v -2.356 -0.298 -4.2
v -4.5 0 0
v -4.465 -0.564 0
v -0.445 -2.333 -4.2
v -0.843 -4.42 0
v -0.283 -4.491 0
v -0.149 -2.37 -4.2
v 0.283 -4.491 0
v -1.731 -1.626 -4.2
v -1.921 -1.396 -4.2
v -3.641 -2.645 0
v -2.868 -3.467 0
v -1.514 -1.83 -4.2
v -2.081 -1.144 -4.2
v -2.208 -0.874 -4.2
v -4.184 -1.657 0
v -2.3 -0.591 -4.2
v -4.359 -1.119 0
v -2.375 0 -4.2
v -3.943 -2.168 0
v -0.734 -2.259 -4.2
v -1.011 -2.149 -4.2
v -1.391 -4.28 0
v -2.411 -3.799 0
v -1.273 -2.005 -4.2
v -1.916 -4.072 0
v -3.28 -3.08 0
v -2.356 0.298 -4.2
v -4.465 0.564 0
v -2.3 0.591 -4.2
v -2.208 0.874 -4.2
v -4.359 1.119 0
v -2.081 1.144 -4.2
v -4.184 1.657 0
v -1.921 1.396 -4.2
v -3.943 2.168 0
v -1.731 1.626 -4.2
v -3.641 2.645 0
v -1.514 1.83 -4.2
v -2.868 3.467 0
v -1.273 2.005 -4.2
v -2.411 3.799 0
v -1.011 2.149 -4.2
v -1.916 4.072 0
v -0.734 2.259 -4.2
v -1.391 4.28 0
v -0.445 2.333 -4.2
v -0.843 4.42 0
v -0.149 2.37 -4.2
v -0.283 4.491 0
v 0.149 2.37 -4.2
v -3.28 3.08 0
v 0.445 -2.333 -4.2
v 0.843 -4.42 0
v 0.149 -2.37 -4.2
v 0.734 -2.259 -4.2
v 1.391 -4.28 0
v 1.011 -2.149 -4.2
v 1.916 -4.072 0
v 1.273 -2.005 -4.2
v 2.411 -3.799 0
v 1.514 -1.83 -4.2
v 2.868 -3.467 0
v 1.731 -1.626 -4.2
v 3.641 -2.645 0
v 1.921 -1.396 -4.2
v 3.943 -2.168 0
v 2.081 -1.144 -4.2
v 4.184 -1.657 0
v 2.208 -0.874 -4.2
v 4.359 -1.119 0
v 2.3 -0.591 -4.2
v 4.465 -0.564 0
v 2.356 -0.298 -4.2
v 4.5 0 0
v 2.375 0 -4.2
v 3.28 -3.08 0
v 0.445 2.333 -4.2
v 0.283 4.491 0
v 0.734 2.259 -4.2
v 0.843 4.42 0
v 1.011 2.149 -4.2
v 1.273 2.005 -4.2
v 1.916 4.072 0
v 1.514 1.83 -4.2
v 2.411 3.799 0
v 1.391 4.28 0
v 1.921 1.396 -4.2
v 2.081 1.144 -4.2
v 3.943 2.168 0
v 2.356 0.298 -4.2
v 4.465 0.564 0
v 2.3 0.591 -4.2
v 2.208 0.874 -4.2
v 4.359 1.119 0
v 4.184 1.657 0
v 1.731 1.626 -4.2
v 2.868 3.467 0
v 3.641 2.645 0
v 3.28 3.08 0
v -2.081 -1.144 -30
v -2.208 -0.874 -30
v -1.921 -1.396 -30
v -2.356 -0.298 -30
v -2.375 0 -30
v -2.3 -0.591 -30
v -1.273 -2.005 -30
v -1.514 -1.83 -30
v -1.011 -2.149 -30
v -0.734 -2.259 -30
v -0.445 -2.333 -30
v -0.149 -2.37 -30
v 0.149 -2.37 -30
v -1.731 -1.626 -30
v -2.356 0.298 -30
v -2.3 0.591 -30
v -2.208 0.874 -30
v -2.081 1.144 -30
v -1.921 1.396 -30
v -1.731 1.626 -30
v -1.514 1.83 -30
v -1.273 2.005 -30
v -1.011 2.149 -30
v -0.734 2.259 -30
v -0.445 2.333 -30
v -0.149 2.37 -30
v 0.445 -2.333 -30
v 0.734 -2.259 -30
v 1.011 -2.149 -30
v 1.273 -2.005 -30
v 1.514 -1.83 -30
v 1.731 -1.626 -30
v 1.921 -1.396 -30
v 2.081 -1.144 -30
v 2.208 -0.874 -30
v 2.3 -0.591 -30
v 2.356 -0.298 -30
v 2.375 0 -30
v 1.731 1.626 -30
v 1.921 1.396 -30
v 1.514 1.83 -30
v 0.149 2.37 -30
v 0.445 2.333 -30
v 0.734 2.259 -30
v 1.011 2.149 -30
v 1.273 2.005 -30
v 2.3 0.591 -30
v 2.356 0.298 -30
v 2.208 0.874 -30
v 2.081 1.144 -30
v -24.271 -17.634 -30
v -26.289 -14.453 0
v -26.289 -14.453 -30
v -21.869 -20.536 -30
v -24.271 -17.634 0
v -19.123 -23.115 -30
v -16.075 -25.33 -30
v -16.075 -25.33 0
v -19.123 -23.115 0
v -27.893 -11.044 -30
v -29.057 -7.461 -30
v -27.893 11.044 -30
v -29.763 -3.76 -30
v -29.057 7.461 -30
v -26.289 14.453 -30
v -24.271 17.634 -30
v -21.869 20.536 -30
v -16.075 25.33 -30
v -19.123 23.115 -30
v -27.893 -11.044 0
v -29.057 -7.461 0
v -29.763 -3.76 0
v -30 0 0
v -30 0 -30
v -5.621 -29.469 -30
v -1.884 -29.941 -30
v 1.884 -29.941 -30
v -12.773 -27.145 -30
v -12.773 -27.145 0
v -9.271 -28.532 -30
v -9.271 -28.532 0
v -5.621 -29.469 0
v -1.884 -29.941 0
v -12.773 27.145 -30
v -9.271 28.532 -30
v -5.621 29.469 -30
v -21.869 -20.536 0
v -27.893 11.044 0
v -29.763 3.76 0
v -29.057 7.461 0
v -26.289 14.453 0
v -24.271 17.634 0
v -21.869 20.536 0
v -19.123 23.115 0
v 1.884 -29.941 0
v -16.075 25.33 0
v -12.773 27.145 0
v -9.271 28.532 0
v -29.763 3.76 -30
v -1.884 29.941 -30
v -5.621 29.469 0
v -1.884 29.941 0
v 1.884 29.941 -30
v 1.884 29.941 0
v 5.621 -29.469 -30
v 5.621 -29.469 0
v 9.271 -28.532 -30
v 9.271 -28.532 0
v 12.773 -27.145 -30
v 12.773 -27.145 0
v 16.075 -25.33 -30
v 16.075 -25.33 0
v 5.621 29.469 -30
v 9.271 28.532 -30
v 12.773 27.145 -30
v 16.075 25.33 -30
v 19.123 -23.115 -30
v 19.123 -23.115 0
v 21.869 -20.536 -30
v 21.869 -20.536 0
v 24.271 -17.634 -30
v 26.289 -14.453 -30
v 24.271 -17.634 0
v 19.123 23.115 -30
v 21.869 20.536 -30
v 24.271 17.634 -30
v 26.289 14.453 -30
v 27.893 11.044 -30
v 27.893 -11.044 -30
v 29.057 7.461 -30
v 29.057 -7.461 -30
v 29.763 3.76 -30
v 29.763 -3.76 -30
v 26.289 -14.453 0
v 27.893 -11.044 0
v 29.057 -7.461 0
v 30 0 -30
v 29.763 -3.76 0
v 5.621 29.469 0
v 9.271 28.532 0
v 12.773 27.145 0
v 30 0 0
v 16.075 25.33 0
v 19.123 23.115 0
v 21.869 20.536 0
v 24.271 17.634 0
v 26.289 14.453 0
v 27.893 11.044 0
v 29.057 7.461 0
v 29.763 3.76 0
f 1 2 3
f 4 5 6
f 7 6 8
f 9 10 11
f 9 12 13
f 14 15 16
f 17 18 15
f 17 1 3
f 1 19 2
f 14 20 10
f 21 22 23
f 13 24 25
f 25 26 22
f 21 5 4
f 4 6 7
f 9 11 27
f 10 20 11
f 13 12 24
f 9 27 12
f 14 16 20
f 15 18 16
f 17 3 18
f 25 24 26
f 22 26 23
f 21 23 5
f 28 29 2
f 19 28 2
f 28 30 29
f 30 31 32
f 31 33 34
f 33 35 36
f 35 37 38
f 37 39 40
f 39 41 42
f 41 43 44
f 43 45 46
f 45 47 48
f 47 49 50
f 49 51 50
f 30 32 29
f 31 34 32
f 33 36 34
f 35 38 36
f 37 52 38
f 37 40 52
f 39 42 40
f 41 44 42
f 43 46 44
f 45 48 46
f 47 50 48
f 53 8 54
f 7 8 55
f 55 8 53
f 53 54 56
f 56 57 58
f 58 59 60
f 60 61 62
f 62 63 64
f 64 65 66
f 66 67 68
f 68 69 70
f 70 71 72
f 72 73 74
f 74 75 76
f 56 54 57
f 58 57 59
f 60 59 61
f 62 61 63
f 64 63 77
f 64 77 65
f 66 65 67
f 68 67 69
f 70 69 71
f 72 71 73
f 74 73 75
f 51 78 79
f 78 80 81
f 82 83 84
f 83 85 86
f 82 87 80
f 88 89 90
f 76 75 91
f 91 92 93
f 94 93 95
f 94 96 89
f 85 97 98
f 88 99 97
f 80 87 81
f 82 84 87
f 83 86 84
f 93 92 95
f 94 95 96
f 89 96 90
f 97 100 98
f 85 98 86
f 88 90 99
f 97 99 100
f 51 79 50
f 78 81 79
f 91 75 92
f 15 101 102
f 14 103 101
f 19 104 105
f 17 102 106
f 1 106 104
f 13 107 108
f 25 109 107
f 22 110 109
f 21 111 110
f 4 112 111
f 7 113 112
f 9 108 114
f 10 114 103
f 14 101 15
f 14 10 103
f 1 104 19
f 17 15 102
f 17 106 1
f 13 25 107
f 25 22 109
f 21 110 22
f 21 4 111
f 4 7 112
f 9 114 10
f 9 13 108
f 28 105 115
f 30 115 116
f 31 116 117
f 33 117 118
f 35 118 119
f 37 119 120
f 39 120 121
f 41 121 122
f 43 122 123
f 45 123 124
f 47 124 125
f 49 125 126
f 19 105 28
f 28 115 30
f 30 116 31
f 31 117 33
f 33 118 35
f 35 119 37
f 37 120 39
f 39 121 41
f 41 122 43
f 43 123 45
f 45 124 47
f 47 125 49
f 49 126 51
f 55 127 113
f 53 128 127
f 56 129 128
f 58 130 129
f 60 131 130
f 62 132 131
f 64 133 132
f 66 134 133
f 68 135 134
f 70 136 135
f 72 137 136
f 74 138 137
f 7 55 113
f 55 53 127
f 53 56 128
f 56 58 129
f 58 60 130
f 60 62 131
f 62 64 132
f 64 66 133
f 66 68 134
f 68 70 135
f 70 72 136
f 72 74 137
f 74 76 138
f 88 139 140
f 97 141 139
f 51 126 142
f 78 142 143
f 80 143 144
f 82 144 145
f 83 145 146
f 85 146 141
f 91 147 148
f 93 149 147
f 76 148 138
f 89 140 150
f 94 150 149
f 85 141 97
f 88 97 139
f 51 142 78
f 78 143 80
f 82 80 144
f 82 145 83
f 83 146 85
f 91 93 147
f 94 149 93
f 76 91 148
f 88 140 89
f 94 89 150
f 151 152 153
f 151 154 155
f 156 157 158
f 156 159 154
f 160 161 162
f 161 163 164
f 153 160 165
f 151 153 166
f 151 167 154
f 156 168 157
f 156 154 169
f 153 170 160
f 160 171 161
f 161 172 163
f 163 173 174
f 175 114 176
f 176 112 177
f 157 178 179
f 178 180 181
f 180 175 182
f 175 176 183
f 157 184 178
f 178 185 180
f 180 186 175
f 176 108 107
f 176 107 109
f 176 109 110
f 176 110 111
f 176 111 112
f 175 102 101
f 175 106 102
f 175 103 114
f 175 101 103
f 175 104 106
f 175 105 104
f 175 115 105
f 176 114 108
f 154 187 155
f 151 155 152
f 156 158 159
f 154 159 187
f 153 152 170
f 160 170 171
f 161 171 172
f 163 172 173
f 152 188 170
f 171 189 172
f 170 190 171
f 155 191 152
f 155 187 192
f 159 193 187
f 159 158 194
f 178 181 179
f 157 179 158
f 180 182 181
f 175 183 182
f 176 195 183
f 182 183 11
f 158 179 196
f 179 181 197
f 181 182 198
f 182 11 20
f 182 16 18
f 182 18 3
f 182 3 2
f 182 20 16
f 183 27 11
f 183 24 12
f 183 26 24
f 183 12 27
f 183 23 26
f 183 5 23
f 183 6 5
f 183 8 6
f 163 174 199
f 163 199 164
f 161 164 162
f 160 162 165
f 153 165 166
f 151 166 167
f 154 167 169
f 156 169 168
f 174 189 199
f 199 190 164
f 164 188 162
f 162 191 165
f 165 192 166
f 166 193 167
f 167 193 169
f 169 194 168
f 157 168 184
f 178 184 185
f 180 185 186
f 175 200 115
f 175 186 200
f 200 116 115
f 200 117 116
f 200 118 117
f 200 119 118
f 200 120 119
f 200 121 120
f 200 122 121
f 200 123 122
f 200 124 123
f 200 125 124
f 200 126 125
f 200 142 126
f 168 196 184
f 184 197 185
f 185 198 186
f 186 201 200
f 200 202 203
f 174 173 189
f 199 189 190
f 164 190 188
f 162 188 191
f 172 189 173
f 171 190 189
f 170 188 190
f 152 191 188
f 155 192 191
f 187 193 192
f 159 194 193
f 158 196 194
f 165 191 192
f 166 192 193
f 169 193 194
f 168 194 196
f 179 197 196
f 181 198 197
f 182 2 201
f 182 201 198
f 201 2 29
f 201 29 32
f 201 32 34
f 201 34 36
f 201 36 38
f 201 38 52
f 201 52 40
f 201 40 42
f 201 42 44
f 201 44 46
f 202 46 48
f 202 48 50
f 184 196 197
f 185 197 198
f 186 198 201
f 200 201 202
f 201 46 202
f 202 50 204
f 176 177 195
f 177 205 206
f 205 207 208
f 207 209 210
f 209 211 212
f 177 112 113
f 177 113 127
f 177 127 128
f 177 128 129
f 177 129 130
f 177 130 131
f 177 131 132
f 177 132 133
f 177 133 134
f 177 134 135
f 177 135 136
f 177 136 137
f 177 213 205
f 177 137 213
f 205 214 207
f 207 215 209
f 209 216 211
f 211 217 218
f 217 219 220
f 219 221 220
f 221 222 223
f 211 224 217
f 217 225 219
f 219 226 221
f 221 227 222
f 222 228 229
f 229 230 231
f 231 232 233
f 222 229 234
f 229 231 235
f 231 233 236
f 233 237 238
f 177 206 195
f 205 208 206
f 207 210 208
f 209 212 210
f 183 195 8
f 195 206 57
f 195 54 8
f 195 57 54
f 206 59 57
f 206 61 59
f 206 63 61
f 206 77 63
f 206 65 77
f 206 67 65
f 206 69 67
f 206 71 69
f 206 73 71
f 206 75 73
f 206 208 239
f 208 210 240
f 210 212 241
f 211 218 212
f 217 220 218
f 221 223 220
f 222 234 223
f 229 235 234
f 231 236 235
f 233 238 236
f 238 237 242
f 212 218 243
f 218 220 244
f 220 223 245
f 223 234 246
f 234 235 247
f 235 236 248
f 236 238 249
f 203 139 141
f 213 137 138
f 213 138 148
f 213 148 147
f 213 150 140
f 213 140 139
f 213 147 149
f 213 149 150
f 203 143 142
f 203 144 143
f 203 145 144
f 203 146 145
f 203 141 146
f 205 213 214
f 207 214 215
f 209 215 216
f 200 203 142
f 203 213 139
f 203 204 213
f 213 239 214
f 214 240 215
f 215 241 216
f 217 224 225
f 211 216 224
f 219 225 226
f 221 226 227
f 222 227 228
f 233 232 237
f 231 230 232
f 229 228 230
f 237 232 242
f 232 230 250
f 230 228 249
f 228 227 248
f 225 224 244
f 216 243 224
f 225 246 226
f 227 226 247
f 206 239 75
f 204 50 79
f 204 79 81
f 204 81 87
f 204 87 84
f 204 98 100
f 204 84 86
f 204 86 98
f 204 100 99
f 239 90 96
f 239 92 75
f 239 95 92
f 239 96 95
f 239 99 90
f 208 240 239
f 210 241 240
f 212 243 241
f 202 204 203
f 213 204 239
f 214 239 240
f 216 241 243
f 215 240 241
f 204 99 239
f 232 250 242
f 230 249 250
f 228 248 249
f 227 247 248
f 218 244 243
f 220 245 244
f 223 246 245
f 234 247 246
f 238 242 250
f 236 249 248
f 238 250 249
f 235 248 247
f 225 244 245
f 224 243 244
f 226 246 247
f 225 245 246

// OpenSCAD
$fn = 50;


difference() {
	union() {
		translate(v = [0, 0, -30.0000000000]) {
			cylinder(h = 30, r = 30.0000000000);
		}
	}
	union() {
		translate(v = [0, 0, 0]) {
			rotate(a = [0, 0, 0]) {
				difference() {
					union() {
						translate(v = [0, 0, -33.0000000000]) {
							cylinder(h = 33, r = 2.2500000000);
						}
						translate(v = [0, 0, -4.2000000000]) {
							cylinder(h = 4.2000000000, r1 = 2.3750000000, r2 = 4.5000000000);
						}
						translate(v = [0, 0, -33.0000000000]) {
							cylinder(h = 33, r = 2.3750000000);
						}
						translate(v = [0, 0, -33.0000000000]) {
							cylinder(h = 33, r = 2.2500000000);
						}
					}
					union();
				}
			}
		}
	}
}
